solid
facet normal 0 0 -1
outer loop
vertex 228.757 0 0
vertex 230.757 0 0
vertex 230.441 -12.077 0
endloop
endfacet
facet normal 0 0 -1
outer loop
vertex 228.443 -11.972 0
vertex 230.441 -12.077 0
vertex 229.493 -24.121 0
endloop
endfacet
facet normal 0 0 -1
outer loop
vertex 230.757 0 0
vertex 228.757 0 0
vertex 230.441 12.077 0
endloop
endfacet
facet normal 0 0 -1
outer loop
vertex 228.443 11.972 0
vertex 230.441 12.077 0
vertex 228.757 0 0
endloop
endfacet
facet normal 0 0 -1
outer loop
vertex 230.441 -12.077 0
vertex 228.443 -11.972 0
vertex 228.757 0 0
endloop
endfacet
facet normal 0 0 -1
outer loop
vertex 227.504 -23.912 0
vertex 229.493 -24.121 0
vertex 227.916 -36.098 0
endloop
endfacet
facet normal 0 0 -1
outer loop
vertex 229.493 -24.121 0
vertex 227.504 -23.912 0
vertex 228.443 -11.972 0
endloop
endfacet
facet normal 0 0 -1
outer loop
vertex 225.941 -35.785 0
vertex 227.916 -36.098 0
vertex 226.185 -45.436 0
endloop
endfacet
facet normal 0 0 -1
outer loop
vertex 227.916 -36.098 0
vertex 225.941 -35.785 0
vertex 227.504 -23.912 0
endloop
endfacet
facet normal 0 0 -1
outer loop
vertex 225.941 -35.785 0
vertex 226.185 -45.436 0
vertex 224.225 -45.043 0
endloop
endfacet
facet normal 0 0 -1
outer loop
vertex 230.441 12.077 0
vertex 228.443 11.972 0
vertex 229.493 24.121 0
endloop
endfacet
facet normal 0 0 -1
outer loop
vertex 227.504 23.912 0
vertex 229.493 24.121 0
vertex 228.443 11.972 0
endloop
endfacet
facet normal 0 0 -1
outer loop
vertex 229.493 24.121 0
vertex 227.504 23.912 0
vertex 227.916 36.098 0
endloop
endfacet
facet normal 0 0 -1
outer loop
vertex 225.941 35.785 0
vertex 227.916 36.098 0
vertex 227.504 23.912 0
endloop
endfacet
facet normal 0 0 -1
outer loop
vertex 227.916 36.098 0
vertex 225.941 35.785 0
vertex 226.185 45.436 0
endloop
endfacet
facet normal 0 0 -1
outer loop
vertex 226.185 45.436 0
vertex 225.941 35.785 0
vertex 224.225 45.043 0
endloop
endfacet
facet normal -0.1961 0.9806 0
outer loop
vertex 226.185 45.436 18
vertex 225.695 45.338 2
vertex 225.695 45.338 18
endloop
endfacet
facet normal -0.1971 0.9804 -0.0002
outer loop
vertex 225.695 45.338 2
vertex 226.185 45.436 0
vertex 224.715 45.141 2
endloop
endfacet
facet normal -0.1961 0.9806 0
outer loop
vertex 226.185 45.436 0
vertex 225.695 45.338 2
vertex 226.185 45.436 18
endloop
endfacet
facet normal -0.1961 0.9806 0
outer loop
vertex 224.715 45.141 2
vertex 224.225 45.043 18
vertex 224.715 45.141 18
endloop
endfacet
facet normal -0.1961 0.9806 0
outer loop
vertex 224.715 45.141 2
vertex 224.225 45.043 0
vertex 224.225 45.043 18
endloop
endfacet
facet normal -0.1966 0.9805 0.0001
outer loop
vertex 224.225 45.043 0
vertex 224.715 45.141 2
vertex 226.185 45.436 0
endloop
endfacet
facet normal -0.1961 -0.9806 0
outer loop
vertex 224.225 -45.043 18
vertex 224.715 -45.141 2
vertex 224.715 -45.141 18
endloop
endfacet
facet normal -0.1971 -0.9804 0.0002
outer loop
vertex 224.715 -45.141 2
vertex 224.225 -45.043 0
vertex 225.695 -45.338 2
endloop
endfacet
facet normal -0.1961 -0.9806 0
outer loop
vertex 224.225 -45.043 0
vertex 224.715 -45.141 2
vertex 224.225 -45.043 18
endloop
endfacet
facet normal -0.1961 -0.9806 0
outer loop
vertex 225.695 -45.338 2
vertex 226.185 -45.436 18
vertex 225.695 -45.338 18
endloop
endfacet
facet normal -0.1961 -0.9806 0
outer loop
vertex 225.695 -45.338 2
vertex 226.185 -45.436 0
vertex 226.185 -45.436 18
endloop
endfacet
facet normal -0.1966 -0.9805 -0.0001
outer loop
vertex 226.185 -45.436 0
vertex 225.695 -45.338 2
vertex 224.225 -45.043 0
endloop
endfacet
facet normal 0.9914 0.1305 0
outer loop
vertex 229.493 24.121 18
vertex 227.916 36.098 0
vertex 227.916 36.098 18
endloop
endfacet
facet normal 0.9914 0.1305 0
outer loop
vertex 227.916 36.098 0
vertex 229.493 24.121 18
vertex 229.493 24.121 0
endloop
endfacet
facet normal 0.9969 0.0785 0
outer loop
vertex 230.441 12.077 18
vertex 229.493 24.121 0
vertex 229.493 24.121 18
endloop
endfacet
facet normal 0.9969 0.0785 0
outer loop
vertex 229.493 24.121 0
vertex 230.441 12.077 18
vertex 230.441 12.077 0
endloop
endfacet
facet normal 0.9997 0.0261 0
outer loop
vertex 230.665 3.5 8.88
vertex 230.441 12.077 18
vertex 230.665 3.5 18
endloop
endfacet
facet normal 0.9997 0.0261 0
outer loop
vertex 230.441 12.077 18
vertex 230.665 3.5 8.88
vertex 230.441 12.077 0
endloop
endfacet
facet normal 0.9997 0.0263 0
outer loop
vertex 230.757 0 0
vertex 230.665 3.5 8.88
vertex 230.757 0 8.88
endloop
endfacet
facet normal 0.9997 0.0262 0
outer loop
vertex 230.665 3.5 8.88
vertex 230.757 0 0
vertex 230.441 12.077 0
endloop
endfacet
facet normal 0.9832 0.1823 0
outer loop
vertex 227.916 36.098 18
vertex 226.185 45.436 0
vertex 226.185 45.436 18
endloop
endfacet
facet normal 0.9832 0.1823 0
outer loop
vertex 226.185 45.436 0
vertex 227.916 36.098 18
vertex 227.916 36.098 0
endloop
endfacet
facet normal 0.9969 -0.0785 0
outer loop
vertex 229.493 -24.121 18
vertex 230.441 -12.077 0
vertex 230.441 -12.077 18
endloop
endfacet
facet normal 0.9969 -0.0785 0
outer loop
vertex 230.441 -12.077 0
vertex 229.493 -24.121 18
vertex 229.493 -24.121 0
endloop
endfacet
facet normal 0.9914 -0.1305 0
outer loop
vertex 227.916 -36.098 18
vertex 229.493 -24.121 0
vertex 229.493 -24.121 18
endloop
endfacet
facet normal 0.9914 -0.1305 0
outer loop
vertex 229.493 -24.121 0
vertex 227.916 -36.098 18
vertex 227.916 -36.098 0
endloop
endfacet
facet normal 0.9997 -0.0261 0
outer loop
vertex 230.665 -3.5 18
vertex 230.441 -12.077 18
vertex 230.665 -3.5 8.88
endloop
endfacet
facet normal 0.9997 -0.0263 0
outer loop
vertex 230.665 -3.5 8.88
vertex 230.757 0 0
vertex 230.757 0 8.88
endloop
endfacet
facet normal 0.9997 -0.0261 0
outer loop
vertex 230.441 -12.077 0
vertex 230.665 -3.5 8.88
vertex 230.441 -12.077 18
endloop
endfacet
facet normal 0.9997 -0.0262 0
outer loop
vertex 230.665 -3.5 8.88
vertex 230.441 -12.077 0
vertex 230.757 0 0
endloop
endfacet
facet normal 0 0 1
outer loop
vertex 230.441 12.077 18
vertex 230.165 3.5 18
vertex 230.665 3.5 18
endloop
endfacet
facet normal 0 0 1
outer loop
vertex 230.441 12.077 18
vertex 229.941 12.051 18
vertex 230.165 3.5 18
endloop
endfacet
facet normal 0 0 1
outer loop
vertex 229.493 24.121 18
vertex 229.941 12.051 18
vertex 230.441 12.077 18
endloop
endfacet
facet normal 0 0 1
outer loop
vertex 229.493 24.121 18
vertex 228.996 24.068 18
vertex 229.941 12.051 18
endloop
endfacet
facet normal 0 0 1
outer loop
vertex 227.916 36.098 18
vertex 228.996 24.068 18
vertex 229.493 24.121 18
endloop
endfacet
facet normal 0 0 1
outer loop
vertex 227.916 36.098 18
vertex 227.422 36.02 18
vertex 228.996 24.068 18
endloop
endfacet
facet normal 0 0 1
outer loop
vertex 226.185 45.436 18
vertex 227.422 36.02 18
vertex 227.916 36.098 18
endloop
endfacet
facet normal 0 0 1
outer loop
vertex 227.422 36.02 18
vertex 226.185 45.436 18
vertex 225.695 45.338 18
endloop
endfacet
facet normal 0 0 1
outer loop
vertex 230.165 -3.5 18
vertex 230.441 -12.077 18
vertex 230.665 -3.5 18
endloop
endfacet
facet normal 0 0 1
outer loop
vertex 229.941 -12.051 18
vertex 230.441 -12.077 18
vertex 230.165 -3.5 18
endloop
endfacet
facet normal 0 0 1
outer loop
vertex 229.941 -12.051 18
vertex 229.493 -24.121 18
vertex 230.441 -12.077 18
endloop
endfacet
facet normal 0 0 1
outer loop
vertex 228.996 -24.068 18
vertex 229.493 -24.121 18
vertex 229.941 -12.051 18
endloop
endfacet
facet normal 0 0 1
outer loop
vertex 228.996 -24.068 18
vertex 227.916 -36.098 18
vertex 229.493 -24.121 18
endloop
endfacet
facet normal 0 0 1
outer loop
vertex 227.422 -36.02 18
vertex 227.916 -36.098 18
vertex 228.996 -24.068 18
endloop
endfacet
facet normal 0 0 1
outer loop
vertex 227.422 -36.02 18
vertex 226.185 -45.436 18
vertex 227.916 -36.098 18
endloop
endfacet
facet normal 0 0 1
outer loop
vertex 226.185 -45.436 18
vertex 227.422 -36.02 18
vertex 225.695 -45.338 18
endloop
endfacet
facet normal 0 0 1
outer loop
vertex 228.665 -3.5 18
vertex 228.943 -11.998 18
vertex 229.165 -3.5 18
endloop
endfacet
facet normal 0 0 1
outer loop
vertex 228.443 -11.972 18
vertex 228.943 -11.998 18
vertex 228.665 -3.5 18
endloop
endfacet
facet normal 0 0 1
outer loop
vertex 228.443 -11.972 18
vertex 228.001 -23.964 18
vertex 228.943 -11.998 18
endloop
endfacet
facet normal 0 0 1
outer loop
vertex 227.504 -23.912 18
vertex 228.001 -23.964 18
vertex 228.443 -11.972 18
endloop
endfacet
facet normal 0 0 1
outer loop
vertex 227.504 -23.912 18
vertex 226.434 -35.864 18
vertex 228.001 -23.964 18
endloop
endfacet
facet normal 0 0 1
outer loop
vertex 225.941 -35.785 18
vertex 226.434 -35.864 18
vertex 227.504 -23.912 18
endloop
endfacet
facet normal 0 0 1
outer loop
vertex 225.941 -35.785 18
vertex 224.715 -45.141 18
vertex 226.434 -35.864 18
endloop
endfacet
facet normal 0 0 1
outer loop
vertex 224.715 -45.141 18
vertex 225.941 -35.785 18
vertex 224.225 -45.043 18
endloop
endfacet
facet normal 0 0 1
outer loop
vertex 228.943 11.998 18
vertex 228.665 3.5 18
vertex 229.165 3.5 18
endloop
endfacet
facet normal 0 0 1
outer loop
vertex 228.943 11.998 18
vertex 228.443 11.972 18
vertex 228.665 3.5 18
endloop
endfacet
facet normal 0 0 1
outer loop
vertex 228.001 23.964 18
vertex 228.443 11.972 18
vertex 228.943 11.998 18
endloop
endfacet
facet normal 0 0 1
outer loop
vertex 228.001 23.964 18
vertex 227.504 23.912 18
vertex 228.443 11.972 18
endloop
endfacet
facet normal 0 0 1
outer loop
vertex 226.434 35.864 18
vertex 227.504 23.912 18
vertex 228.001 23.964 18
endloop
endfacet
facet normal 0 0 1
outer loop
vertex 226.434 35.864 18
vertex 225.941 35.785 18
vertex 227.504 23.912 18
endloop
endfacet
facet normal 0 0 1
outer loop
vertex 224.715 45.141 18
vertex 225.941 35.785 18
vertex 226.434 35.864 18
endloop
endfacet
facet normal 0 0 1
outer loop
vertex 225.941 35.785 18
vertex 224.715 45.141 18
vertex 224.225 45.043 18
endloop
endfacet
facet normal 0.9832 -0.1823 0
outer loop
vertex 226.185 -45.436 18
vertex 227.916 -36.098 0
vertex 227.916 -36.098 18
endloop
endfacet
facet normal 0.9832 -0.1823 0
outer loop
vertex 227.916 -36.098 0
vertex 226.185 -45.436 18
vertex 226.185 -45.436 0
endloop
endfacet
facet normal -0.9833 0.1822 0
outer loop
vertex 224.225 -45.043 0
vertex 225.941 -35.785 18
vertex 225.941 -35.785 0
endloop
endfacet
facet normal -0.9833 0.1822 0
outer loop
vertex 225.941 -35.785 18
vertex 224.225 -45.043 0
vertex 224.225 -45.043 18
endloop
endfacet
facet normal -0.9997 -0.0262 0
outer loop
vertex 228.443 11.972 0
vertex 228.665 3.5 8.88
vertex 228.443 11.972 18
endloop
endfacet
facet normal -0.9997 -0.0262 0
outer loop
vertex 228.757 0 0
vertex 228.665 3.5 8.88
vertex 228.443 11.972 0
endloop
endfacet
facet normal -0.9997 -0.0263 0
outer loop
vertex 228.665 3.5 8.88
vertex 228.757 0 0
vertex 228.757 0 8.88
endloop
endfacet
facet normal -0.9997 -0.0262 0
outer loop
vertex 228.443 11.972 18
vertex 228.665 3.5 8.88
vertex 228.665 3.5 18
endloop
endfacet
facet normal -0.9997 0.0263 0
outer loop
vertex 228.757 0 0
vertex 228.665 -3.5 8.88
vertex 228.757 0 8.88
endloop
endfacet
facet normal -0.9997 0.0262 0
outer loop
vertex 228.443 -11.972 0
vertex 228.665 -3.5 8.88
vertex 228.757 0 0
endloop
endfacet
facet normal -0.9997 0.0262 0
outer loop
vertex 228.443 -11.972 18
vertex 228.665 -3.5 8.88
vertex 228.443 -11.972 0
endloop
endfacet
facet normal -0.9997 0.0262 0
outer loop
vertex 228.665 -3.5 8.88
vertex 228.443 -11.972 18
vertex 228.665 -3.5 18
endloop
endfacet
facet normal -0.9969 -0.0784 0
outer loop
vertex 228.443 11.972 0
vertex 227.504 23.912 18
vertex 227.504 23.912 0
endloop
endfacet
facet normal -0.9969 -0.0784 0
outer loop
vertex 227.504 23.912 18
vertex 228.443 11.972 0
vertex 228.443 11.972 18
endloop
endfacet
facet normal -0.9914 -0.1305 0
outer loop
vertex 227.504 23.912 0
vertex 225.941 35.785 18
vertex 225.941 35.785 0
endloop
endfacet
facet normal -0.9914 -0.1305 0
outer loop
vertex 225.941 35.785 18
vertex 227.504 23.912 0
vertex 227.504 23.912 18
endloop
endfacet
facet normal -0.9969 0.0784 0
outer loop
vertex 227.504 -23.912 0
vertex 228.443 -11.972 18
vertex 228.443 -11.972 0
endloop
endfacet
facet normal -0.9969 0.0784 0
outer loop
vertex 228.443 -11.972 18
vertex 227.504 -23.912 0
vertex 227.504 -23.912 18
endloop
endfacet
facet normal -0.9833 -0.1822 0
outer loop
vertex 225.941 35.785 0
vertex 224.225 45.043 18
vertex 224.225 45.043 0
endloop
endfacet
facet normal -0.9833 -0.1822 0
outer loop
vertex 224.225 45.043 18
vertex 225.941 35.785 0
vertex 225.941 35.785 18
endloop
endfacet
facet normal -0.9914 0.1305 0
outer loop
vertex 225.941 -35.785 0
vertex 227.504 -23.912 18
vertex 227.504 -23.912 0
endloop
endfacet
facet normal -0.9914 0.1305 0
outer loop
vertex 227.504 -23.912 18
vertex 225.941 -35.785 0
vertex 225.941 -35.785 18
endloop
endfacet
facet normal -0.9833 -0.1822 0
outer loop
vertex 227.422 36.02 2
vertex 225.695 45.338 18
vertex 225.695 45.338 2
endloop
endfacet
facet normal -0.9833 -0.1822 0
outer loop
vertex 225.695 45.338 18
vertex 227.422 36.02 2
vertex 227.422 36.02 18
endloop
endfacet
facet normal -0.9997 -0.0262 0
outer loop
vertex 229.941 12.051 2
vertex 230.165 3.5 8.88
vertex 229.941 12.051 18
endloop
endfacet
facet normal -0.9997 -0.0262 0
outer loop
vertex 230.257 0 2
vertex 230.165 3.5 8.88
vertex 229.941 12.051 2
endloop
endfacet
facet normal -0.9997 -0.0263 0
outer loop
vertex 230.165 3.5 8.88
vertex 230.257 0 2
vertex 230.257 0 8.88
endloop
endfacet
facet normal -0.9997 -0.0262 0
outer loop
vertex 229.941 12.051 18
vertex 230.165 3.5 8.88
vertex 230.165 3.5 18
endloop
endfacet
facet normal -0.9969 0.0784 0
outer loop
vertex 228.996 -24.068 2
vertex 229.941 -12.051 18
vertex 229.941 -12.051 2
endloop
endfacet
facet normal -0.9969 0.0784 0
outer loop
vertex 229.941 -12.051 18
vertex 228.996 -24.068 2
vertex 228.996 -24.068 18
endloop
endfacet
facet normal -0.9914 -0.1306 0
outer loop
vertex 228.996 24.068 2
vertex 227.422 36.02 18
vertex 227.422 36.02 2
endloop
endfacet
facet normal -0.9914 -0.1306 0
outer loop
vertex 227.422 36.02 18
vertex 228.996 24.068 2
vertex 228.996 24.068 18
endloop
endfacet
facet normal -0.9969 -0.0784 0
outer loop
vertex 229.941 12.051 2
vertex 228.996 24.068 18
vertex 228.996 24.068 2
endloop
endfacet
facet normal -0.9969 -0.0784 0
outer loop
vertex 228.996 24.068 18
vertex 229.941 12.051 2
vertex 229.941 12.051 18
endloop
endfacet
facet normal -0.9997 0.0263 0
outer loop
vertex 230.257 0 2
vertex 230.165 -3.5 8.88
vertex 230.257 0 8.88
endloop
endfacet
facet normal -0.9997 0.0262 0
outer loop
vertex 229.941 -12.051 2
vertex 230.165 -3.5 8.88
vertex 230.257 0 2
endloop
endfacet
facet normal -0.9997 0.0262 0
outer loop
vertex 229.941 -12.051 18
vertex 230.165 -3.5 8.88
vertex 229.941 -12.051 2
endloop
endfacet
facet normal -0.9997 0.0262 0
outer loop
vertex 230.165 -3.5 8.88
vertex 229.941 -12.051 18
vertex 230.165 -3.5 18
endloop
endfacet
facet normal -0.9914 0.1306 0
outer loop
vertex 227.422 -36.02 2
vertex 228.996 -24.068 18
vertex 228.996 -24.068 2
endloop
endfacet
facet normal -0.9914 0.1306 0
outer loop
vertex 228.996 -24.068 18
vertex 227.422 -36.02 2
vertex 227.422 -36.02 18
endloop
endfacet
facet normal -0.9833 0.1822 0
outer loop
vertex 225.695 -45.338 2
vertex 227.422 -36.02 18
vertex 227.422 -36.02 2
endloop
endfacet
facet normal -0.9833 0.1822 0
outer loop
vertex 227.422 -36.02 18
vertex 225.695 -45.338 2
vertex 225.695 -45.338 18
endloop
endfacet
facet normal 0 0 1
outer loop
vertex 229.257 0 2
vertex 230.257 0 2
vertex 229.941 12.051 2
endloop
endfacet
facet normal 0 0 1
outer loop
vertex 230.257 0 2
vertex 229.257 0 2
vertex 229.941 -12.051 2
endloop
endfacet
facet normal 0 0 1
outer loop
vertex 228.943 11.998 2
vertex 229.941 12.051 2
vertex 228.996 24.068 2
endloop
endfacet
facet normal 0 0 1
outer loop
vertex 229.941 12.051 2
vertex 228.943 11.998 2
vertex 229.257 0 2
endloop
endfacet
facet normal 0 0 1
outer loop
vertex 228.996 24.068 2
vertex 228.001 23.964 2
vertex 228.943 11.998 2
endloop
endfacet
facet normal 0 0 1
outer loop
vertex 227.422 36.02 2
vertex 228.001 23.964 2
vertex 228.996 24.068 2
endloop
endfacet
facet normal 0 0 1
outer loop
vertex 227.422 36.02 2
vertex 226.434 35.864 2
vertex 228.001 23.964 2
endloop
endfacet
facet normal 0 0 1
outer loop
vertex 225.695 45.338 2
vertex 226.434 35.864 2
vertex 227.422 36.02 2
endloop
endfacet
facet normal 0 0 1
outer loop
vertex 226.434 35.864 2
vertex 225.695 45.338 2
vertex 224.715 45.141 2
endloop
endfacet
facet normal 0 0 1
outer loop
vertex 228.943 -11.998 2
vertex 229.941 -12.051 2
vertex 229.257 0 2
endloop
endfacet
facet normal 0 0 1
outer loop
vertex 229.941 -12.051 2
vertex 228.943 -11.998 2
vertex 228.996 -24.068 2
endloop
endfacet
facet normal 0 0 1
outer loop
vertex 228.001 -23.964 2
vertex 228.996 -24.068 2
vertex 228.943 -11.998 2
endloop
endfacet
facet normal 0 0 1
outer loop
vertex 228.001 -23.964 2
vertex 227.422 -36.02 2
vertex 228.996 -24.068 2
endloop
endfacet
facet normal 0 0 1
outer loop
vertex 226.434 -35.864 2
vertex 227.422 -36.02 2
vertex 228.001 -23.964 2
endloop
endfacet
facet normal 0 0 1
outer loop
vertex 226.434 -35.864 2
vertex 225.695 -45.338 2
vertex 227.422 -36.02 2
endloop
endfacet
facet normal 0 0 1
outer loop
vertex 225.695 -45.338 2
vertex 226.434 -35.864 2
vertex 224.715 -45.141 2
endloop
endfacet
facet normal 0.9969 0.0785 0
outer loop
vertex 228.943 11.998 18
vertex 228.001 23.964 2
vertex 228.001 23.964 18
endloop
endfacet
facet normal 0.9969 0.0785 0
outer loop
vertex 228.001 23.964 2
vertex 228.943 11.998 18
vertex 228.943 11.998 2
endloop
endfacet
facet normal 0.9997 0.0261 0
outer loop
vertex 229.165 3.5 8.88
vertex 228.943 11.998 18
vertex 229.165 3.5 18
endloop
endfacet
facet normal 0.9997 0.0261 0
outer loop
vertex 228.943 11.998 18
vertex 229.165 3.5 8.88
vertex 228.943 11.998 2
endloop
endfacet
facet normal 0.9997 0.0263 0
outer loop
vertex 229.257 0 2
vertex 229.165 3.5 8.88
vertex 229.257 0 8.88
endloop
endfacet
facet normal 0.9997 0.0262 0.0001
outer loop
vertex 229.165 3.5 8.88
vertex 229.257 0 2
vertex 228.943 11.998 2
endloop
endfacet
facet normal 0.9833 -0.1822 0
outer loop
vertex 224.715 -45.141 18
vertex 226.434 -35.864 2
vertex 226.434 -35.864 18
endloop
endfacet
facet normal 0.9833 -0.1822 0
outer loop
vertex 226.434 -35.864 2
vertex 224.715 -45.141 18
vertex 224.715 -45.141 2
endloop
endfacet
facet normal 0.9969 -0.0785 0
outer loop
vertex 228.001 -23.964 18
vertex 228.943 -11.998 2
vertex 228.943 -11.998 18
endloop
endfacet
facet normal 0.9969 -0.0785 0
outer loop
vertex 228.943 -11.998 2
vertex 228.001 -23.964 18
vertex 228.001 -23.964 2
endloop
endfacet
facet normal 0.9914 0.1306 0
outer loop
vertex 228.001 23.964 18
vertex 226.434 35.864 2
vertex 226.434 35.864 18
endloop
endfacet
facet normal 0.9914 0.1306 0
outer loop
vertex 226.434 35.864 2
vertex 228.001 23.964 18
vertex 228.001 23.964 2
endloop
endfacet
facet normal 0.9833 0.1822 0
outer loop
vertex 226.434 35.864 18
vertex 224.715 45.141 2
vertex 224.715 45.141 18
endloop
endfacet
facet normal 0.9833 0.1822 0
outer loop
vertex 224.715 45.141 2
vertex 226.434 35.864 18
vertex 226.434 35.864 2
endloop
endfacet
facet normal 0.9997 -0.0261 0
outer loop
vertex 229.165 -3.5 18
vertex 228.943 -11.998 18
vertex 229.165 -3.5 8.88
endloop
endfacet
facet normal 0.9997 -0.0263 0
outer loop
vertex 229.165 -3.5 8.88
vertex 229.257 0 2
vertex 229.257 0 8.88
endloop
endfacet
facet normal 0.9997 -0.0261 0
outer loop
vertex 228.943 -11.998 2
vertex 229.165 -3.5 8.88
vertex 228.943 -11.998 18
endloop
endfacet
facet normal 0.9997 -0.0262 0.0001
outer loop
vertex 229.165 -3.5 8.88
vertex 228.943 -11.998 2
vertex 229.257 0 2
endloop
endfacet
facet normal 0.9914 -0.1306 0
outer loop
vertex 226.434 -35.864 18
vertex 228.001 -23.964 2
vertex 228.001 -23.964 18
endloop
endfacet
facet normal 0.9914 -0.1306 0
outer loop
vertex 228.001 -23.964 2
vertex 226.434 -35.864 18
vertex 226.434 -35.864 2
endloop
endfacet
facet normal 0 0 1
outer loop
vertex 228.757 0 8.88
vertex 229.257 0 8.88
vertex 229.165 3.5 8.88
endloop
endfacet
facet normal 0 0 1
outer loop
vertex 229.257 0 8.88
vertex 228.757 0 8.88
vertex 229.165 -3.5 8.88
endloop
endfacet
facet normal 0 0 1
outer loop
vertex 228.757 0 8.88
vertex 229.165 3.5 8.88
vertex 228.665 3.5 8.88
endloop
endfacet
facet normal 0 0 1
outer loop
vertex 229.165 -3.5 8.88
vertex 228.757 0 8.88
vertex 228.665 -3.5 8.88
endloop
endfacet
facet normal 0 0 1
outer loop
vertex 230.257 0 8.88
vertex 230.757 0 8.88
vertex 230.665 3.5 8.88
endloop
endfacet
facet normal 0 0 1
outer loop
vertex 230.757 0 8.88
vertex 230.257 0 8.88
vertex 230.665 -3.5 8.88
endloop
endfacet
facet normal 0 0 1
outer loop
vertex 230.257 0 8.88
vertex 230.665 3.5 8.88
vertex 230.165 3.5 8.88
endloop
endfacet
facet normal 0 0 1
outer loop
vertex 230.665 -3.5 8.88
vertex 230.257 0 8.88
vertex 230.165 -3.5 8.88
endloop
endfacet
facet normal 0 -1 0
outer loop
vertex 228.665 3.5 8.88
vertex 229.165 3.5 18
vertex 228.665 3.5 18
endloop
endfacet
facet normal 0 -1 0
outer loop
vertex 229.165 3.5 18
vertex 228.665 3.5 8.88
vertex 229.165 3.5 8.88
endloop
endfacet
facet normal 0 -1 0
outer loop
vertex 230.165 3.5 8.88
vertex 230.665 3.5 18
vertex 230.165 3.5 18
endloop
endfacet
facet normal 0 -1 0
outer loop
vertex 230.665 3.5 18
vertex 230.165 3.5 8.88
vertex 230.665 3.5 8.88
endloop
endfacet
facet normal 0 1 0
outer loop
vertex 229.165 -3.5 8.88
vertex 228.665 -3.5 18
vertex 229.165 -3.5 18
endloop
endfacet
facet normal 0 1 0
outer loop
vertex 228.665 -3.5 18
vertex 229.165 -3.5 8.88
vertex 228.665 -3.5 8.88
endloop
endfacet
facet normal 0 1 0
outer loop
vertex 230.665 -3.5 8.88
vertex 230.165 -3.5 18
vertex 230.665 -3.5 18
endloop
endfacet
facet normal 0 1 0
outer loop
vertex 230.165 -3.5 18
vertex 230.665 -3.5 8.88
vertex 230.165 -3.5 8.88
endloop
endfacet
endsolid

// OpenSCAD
$fn=120;

/*
  http://mathcentral.uregina.ca/QQ/database/QQ.09.09/h/darryl1.html
*/
C=90.5;
S=4.5;

HEIGHT = 18;
THICK = 2;

R=(4 * S * S + C * C)/(8 * S);
echo (" ");
echo ("value of R is ", R);

SHORT = R - S;
ANGLE = atan2( C/2, SHORT);

echo ("half angle =", ANGLE, " degrees");
echo (" ");

module first()
difference()
{
    cylinder(h = HEIGHT, r= R + THICK/2);
    cylinder(h = HEIGHT, r= R - THICK/2);
}

module grooved()
difference()
{
    cylinder(h = HEIGHT, r= R + THICK/4);
    cylinder(h = HEIGHT, r= R - THICK/4);
}

module cutter()
{
    color("GREEN")
    {
        translate([ -R *2, -R , 0 ])
        cube( [ R *2, R *2, HEIGHT * 2] );
        
        rotate([ 0, 0, ANGLE])
        cube( [ R *2, R *2, HEIGHT * 2] );

        color("RED")
        rotate([ 0, 0, -ANGLE])
        translate( [0, -R *2 , 0])
        cube( [ R *2, R *2, HEIGHT * 2] );
    }
}

_WIDE=7;
_UP=5;

module holder()
{
    translate ([0, -7/2, 5+ 3.88])
    cube([R*2, 7 ,  _UP*10]);

}

difference()
{
    difference()
    {
        union()
        {
            first();
            //holder(); //cutter();
        }
        translate([ 0, 0, 2])
        grooved();
    }
    cutter();
    holder();
}
